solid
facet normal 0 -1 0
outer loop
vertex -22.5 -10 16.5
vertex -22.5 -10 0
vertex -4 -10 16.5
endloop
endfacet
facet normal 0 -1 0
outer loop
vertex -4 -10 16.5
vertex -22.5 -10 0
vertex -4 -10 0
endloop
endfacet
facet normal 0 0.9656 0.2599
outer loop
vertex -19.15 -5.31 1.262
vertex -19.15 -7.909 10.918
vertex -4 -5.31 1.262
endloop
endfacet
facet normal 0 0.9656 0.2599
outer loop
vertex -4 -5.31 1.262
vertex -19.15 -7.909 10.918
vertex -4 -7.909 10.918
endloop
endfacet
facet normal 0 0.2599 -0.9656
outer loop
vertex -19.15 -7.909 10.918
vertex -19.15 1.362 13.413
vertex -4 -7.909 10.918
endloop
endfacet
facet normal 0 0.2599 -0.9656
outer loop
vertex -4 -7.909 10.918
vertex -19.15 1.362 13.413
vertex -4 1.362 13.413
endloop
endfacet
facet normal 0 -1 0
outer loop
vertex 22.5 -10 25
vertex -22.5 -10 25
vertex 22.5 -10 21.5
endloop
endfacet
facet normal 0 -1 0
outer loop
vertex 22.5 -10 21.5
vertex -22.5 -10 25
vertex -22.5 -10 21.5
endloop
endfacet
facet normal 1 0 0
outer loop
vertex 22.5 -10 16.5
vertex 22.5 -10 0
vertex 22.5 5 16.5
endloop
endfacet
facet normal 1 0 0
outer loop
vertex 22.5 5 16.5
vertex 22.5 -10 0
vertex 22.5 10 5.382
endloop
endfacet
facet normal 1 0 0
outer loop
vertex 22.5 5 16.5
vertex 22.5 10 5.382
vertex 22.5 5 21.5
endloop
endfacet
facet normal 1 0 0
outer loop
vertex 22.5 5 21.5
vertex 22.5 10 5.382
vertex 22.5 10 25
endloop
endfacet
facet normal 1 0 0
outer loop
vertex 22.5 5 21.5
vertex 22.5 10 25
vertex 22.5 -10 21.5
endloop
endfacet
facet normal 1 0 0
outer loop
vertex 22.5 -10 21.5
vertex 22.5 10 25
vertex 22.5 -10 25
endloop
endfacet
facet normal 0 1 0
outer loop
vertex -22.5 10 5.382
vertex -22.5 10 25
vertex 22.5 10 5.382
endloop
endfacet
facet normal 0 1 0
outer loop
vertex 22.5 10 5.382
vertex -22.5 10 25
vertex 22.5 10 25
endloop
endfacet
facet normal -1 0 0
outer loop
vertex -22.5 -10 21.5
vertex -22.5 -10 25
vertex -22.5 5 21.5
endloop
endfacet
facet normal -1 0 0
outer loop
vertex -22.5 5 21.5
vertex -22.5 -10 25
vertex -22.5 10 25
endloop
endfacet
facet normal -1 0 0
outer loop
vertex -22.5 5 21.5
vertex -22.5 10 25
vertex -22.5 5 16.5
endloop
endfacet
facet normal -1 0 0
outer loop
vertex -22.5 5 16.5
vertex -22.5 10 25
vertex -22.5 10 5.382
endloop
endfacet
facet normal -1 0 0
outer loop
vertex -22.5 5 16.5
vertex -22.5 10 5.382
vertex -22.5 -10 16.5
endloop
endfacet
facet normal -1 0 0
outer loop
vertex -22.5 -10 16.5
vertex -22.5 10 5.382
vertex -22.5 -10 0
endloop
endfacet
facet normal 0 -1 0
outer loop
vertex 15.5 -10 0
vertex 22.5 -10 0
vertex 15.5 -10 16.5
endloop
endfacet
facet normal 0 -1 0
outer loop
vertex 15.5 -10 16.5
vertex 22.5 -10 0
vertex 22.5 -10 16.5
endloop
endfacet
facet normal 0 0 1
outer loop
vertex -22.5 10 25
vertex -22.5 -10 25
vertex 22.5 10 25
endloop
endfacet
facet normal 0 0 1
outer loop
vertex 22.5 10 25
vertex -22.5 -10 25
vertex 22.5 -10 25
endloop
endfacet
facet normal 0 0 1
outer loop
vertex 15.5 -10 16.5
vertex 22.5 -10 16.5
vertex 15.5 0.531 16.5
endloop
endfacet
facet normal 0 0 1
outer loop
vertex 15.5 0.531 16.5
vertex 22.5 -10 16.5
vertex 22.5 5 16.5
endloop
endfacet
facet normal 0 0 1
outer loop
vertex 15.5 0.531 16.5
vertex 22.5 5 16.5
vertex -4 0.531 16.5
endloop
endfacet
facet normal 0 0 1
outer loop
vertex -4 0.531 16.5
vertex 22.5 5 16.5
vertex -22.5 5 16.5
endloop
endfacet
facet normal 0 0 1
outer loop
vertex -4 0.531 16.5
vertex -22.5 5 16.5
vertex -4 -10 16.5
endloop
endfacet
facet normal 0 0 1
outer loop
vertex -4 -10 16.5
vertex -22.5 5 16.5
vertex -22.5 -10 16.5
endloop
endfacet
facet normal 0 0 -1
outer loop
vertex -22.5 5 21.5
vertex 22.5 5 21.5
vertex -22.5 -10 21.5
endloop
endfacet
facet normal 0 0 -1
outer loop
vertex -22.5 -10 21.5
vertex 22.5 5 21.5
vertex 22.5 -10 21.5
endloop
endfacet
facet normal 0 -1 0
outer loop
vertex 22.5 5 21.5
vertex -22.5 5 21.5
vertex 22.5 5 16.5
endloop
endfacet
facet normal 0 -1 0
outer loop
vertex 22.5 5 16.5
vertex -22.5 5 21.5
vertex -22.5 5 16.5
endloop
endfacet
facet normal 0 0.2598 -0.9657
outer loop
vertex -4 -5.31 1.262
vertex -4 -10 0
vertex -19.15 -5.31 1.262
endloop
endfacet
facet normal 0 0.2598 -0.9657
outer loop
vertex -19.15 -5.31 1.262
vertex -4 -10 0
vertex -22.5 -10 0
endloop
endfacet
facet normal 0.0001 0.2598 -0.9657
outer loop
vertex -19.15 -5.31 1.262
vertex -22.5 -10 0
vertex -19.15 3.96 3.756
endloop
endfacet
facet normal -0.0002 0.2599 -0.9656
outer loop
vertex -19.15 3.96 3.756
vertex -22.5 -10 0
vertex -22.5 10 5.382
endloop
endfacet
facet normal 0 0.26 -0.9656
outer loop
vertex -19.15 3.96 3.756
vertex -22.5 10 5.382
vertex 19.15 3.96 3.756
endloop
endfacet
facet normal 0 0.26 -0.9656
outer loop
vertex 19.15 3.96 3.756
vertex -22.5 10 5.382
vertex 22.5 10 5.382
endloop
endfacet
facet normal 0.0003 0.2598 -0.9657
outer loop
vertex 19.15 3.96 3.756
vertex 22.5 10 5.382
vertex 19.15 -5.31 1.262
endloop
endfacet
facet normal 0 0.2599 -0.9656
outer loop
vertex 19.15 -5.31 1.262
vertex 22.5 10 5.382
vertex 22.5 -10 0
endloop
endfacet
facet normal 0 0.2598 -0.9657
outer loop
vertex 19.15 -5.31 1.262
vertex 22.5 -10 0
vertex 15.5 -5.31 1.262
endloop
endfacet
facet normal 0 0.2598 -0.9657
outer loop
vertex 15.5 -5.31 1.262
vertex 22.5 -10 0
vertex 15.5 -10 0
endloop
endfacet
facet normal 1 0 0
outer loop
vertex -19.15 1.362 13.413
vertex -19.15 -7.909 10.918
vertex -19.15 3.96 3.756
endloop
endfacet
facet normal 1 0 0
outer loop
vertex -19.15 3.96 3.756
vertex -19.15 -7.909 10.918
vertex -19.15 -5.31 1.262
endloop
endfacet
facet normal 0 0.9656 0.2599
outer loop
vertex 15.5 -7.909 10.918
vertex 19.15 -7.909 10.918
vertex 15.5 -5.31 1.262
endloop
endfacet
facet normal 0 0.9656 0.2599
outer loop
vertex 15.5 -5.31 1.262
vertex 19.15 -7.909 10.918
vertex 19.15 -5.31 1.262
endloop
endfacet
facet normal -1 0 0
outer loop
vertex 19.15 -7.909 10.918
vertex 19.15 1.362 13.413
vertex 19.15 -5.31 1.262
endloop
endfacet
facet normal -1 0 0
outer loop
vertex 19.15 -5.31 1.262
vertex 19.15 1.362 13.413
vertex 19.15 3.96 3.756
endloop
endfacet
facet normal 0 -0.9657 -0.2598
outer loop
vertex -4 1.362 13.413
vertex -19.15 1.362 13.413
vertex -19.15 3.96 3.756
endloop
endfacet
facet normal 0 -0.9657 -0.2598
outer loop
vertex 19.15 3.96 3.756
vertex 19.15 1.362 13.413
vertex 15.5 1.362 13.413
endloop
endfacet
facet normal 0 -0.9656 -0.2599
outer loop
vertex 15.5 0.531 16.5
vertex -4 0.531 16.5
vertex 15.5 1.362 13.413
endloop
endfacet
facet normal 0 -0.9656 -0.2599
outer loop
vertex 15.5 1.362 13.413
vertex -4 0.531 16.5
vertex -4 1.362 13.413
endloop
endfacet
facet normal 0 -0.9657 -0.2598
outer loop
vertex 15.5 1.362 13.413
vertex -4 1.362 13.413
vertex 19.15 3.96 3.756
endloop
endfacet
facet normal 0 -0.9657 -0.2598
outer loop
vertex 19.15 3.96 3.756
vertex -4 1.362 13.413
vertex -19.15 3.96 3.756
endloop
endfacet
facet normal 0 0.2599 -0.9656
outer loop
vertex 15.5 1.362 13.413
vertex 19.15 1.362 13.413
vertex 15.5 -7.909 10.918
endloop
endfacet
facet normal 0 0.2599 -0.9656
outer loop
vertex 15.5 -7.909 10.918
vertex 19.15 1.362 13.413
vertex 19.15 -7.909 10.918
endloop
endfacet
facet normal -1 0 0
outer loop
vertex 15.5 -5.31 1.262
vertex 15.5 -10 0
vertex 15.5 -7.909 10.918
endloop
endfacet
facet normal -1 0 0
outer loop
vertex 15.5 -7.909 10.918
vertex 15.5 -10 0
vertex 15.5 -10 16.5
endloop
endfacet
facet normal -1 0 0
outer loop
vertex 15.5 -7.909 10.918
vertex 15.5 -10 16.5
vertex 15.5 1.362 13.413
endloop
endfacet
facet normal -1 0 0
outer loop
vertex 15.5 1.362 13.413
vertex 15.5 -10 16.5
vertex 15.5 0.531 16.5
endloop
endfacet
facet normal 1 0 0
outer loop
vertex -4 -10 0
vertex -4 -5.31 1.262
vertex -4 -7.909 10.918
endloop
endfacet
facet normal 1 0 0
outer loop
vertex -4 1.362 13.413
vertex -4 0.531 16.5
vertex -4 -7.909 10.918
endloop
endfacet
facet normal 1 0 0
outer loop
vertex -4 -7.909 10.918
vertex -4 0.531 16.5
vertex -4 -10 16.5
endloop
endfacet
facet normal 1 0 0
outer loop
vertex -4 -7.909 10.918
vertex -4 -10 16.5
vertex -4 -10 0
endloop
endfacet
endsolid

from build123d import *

# Parameters (mm, degrees)
SKETCH2_W           = 45
SKETCH2_H           = 20
BOSS_EXTRUDE1_DEPTH = 25
CUT_EXTRUDE1_START  = -20
SKETCH5_W           = 45
SKETCH5_H           = 5
CUT_EXTRUDE1_DEPTH  = 15
CUT_EXTRUDE2_DEPTH  = 45
SKETCH8_W           = 38.3
SKETCH8_H           = 9.6
CUT_EXTRUDE3_DEPTH  = 10
CUT_EXTRUDE4_REACH  = 41.131
SKETCH9_W           = 19.5
SKETCH9_H           = 16.5


with BuildPart() as part:
    # Sketch2 → Boss-Extrude1 (new body)
    with BuildSketch(Plane.XY):
        Rectangle(SKETCH2_W, SKETCH2_H)
    extrude(amount=BOSS_EXTRUDE1_DEPTH)

    # Sketch5 → Cut-Extrude1 (cut)
    with BuildSketch(Plane(origin=(0, 10, 0), x_dir=(1, 0, 0), z_dir=(0, 1, 0)).offset(CUT_EXTRUDE1_START)):
        with Locations((0, -19)):
            Rectangle(SKETCH5_W, SKETCH5_H)
    extrude(amount=CUT_EXTRUDE1_DEPTH, mode=Mode.SUBTRACT)

    # Sketch7 → Cut-Extrude2 (cut)
    with BuildSketch(Plane(origin=(22.5, 0, 0), x_dir=(0, 0, -1), z_dir=(1, 0, 0))):
        Polygon((0, -10), (0, 10), (-5.381576505, 10), align=None)
    extrude(amount=-CUT_EXTRUDE2_DEPTH, mode=Mode.SUBTRACT)

    # Sketch8 → Cut-Extrude3 (cut)
    with BuildSketch(Plane(origin=(0, -0.675150911, 2.509119438), x_dir=(-1, 0, 0), z_dir=(0, 0.25983666232132585, -0.9656525818914965))):
        Rectangle(SKETCH8_W, SKETCH8_H)
    extrude(amount=-CUT_EXTRUDE3_DEPTH, mode=Mode.SUBTRACT)

    # Cut-Extrude4: up to this plane
    cut_extrude4_end = Plane(origin=(19.15, 1.361614859, 13.412861236), z_dir=(0, 0.9656525818914965, 0.25983666232132585))
    # Sketch9 → Cut-Extrude4 (cut, up to the surface)
    with BuildSketch(Plane.XZ.offset(10), mode=Mode.PRIVATE) as cut_extrude4_sk1:
        with Locations((5.75, 8.25)):
            Rectangle(SKETCH9_W, SKETCH9_H)
    cut_extrude4_tool1 = split(extrude(cut_extrude4_sk1.sketch, amount=-CUT_EXTRUDE4_REACH, mode=Mode.PRIVATE), bisect_by=cut_extrude4_end, keep=Keep.BOTH, mode=Mode.PRIVATE)
    add(cut_extrude4_tool1.solids().sort_by_distance((5.75, -10, 8.25))[0], mode=Mode.SUBTRACT)


solid = part.part
